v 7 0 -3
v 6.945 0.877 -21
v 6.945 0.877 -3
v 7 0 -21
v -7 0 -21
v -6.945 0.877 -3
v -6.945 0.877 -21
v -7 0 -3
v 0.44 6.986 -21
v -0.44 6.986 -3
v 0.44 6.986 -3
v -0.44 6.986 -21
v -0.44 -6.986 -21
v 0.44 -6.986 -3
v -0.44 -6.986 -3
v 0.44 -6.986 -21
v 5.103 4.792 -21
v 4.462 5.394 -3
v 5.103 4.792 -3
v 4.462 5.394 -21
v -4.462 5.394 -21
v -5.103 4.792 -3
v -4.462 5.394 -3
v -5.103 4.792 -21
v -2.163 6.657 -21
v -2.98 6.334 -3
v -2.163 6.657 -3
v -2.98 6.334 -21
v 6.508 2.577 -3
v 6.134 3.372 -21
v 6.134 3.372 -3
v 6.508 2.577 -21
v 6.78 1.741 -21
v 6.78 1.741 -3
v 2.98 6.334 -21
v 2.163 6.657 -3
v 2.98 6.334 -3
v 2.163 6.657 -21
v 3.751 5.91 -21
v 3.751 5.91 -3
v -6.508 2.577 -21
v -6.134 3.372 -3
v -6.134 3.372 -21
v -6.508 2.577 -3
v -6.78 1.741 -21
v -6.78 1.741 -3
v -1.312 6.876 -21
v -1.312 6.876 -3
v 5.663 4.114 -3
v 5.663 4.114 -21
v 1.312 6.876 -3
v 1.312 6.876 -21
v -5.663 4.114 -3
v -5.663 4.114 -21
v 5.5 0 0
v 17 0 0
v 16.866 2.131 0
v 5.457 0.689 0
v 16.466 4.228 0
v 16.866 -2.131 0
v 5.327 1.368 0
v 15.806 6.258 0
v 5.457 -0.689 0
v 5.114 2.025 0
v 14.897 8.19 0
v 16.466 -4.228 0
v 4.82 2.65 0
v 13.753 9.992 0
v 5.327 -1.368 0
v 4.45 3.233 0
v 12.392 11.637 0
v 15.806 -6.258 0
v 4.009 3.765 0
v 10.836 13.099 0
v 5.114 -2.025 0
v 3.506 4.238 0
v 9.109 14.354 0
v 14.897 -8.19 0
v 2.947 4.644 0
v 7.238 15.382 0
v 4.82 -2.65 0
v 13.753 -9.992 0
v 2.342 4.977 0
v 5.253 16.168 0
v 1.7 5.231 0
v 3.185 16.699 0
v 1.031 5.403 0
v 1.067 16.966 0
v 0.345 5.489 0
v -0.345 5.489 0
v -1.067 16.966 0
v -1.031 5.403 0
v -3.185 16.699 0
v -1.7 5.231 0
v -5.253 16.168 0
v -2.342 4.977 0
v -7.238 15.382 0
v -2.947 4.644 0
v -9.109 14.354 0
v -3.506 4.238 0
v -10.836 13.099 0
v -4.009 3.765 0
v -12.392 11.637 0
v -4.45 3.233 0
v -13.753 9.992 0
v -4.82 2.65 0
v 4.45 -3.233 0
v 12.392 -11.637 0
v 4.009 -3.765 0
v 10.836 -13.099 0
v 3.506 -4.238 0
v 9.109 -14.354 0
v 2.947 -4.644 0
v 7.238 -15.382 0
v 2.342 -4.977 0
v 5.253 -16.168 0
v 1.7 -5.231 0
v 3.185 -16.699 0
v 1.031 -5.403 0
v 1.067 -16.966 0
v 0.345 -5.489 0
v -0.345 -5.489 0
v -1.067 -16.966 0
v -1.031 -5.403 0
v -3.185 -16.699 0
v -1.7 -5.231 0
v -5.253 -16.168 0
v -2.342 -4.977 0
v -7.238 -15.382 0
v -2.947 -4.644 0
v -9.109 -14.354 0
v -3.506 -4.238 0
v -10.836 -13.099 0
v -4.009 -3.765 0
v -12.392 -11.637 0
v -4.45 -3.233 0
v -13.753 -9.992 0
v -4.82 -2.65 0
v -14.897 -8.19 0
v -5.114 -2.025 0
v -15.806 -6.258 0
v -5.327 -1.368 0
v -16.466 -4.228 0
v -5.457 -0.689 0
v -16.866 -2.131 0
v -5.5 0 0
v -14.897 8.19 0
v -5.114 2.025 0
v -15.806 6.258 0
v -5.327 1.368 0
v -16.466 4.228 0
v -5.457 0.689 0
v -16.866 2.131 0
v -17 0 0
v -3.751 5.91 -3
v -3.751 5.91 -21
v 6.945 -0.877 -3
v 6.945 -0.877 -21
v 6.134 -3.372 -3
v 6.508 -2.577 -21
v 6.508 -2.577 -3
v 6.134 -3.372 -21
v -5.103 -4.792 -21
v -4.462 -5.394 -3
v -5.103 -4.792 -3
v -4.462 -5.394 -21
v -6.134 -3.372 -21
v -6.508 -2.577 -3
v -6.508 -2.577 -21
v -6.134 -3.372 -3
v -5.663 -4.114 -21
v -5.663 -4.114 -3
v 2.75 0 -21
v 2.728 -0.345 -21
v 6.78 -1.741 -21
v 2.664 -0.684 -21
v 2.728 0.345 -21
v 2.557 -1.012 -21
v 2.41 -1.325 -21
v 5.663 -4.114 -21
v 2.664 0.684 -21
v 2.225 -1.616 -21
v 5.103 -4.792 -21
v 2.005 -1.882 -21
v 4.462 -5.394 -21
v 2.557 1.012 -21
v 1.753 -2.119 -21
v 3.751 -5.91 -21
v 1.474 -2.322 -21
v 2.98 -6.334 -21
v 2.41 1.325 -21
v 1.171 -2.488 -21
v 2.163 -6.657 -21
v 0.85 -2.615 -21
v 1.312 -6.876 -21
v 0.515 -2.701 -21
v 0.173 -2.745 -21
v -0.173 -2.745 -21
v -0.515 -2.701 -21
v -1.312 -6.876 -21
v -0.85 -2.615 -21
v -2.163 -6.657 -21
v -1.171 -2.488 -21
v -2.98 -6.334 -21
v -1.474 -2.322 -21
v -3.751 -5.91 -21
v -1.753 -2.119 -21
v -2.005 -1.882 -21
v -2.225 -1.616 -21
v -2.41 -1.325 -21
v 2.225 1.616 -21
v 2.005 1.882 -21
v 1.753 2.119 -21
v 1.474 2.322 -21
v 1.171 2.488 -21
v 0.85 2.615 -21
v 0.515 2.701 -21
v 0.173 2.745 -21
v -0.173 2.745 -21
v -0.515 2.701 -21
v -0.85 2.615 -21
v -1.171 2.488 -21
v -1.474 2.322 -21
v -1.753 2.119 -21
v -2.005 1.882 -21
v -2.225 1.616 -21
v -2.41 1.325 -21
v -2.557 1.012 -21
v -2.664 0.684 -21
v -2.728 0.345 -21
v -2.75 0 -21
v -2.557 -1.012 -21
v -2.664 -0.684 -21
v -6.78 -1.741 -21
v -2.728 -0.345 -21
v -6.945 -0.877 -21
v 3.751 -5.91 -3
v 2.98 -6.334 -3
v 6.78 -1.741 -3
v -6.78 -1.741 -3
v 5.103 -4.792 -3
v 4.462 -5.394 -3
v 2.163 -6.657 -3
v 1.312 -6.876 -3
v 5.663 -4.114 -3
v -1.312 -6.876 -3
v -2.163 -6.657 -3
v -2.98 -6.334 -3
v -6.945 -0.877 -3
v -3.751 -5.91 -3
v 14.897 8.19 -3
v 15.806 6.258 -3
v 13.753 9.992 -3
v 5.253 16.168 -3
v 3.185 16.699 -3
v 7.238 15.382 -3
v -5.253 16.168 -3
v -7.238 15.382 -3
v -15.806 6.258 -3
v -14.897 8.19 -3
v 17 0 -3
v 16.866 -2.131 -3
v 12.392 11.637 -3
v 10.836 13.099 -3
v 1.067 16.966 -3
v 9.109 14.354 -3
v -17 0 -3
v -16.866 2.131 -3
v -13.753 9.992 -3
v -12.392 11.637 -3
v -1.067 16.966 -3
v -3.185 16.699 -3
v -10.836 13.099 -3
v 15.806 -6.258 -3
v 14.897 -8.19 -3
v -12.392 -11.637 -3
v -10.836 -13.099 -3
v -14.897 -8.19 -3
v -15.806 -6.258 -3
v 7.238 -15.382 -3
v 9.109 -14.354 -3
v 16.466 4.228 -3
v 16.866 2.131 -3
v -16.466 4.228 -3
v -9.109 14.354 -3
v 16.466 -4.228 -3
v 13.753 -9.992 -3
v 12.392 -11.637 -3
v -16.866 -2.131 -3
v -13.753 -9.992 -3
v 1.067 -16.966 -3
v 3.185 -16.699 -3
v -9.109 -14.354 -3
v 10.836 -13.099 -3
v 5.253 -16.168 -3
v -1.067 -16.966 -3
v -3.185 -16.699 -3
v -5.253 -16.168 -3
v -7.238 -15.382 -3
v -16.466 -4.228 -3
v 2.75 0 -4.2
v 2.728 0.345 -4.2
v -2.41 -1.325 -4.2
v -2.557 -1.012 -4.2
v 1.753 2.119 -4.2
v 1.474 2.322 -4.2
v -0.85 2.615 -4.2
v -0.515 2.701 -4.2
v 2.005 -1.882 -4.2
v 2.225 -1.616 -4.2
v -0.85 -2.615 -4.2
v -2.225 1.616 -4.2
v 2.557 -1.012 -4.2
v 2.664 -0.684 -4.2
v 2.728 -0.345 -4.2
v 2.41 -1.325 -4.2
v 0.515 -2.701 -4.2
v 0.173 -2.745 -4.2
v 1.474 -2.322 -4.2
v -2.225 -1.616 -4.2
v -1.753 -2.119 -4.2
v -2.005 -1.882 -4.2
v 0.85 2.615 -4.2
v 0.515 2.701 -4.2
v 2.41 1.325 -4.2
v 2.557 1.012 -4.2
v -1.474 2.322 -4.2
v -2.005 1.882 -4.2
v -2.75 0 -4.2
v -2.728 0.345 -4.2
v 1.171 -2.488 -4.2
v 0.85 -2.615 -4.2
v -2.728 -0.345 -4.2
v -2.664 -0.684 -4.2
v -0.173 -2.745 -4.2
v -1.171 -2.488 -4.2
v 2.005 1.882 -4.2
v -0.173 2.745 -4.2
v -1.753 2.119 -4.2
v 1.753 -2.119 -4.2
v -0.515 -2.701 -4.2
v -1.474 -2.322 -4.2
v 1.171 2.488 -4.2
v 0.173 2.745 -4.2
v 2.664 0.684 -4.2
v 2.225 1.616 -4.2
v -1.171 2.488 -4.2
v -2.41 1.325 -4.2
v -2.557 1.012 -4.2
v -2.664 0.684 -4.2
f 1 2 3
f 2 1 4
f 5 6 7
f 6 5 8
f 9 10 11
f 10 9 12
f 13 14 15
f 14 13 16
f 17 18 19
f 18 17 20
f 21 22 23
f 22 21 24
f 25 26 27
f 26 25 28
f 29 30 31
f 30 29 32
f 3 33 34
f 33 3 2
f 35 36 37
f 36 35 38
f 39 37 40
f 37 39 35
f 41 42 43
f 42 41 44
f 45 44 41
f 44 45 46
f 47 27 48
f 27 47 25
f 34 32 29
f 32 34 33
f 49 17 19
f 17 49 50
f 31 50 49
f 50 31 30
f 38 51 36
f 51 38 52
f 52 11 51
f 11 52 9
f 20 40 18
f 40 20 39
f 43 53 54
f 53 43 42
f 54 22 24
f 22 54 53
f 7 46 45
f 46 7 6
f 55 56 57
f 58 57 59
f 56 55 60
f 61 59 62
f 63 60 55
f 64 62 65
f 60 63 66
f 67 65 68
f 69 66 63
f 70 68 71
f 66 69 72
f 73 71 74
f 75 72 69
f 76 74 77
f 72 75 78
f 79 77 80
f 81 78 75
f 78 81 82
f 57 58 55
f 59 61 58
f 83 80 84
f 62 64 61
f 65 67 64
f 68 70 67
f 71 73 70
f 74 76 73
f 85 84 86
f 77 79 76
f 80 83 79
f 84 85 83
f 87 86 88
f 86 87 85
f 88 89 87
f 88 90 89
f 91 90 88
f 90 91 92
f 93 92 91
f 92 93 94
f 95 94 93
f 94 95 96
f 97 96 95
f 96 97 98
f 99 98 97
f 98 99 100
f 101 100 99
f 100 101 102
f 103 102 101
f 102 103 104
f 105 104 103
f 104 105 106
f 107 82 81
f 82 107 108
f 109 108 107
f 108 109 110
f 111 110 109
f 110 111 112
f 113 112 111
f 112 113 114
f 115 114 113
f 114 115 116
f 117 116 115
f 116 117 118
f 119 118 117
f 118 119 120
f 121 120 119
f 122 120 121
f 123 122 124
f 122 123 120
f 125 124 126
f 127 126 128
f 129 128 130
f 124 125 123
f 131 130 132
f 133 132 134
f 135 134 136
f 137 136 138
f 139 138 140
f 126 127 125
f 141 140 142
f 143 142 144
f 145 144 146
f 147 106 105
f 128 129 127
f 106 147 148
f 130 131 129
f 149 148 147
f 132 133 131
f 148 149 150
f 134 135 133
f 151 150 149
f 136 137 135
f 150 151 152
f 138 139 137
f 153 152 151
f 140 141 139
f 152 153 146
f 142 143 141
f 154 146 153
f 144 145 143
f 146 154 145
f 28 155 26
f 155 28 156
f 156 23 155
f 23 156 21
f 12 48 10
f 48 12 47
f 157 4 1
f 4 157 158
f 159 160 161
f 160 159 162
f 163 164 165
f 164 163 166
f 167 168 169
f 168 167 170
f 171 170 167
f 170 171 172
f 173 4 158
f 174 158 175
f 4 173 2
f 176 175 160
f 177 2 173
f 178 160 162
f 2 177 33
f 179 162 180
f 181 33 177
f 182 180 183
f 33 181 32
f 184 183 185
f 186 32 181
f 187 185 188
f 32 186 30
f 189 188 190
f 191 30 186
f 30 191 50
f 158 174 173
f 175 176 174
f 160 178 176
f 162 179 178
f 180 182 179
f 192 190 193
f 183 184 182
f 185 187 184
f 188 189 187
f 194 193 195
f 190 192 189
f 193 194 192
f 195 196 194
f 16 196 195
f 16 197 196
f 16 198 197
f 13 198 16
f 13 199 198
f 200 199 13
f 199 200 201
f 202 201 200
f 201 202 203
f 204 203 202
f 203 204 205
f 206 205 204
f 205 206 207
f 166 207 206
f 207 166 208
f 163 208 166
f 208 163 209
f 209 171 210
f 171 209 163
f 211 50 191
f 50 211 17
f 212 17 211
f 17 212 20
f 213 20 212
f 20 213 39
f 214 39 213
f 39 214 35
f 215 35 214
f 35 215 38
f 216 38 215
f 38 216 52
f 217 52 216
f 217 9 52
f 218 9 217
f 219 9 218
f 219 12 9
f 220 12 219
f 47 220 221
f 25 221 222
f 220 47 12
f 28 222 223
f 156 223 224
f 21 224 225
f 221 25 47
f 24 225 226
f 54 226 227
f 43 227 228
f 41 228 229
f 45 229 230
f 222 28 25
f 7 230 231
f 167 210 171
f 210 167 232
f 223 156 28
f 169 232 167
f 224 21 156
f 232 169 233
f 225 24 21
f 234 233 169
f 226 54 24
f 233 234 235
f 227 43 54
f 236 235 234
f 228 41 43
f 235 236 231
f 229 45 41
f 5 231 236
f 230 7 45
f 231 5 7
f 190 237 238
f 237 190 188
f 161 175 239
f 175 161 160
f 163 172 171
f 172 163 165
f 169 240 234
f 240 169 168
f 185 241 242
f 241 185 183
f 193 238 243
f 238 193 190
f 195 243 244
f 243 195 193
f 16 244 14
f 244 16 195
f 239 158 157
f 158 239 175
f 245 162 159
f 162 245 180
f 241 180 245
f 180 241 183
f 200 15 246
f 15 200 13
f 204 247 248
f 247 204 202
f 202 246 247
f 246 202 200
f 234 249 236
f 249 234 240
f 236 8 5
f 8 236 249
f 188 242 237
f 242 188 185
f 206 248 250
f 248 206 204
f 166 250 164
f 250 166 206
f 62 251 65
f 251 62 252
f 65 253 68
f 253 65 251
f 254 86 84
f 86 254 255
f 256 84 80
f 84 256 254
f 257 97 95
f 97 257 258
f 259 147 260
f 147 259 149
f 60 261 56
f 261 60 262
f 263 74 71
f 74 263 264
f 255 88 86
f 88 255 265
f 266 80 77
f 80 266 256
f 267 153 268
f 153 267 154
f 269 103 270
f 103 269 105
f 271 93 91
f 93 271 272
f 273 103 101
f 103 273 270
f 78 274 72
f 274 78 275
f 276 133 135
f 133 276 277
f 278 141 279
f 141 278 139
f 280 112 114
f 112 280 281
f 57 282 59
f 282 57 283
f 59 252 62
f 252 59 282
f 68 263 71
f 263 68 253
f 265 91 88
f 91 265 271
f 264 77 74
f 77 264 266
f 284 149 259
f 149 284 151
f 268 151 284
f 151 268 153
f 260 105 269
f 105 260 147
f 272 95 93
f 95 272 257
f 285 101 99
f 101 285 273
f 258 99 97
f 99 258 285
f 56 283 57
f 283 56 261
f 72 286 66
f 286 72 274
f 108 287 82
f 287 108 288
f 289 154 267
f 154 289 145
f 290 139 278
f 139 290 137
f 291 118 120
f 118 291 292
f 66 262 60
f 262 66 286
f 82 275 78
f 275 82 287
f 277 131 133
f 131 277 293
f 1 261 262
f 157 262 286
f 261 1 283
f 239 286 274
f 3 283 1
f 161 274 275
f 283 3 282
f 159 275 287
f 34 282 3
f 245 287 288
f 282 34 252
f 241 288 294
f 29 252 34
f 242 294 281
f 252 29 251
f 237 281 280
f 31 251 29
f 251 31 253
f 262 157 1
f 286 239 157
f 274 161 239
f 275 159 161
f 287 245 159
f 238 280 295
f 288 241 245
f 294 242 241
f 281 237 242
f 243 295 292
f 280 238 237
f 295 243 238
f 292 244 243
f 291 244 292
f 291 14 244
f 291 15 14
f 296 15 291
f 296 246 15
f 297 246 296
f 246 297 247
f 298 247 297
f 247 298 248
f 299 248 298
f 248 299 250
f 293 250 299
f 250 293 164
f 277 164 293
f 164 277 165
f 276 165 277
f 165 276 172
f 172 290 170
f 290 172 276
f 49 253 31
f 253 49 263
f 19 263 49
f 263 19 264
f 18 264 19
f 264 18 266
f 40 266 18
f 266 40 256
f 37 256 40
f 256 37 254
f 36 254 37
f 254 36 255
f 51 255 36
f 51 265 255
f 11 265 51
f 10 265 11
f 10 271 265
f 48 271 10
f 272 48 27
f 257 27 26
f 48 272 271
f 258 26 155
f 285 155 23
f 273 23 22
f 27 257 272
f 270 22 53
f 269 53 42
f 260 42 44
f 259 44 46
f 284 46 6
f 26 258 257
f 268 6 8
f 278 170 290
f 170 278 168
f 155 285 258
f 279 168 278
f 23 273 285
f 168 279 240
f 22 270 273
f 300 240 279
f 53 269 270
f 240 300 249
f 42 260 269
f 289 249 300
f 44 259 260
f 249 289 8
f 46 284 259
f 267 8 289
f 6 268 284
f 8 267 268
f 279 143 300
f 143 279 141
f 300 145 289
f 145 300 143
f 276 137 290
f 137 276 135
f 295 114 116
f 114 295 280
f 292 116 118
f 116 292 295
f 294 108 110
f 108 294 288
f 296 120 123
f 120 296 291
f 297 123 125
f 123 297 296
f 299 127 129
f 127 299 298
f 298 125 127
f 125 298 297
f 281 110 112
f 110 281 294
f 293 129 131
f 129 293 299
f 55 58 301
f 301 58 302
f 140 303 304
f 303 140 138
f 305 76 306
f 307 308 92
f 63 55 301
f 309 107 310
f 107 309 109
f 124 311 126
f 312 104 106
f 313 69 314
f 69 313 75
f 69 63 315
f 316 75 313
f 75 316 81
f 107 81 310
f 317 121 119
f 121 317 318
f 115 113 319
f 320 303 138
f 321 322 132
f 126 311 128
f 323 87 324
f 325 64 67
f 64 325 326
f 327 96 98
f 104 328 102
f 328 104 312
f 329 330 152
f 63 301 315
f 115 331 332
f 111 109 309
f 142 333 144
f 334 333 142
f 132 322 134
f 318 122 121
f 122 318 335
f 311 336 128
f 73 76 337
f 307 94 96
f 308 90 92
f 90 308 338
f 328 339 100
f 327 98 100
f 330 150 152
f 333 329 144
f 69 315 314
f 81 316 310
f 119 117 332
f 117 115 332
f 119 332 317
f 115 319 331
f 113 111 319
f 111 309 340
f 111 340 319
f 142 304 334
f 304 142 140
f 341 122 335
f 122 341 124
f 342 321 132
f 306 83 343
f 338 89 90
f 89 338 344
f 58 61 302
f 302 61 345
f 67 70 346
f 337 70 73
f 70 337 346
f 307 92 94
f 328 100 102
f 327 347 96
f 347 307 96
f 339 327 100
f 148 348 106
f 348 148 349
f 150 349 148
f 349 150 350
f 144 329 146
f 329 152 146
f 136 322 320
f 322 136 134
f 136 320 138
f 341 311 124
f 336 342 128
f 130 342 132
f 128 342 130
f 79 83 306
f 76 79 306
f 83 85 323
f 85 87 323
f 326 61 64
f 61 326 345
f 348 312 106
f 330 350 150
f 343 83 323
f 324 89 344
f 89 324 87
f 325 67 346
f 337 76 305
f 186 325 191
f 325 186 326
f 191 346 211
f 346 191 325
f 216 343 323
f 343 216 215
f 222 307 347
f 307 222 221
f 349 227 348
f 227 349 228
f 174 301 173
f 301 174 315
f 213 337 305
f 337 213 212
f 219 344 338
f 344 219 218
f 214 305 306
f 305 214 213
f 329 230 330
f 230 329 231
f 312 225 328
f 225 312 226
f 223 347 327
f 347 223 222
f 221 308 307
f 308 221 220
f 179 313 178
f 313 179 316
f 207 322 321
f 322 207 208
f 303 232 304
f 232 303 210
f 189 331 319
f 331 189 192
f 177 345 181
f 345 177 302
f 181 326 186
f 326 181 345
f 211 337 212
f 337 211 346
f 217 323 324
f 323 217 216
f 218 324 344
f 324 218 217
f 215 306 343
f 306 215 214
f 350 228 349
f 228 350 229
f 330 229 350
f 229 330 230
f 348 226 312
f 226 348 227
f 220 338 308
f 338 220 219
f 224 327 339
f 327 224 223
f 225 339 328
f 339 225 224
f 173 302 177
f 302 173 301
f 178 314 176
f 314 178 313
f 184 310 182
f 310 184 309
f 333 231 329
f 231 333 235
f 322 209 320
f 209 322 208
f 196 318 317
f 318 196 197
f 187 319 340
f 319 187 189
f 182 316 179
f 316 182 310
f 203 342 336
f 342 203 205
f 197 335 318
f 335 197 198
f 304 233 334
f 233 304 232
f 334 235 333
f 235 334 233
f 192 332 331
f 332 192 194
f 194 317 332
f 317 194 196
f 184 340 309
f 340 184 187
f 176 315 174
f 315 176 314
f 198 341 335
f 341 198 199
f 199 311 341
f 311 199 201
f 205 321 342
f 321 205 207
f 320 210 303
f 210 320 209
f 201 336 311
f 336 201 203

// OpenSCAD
$fn = 50;


difference() {
	union() {
		translate(v = [0, 0, -21.0000000000]) {
			cylinder(h = 21, r = 7.0000000000);
		}
		translate(v = [0, 0, -3.0000000000]) {
			cylinder(h = 3, r = 17.0000000000);
		}
	}
	union() {
		translate(v = [0, 0, 0]) {
			rotate(a = [0, 0, 0]) {
				difference() {
					union() {
						#translate(v = [0, 0, -21.0000000000]) {
							cylinder(h = 21, r = 2.2500000000);
						}
						#translate(v = [0, 0, -4.2000000000]) {
							cylinder(h = 4.2000000000, r = 7.0000000000, r1 = 2.7500000000, r2 = 5.5000000000);
						}
						#translate(v = [0, 0, -21.0000000000]) {
							cylinder(h = 21, r = 2.7500000000);
						}
						#translate(v = [0, 0, -21.0000000000]) {
							cylinder(h = 21, r = 2.2500000000);
						}
					}
					union();
				}
			}
		}
	}
}
